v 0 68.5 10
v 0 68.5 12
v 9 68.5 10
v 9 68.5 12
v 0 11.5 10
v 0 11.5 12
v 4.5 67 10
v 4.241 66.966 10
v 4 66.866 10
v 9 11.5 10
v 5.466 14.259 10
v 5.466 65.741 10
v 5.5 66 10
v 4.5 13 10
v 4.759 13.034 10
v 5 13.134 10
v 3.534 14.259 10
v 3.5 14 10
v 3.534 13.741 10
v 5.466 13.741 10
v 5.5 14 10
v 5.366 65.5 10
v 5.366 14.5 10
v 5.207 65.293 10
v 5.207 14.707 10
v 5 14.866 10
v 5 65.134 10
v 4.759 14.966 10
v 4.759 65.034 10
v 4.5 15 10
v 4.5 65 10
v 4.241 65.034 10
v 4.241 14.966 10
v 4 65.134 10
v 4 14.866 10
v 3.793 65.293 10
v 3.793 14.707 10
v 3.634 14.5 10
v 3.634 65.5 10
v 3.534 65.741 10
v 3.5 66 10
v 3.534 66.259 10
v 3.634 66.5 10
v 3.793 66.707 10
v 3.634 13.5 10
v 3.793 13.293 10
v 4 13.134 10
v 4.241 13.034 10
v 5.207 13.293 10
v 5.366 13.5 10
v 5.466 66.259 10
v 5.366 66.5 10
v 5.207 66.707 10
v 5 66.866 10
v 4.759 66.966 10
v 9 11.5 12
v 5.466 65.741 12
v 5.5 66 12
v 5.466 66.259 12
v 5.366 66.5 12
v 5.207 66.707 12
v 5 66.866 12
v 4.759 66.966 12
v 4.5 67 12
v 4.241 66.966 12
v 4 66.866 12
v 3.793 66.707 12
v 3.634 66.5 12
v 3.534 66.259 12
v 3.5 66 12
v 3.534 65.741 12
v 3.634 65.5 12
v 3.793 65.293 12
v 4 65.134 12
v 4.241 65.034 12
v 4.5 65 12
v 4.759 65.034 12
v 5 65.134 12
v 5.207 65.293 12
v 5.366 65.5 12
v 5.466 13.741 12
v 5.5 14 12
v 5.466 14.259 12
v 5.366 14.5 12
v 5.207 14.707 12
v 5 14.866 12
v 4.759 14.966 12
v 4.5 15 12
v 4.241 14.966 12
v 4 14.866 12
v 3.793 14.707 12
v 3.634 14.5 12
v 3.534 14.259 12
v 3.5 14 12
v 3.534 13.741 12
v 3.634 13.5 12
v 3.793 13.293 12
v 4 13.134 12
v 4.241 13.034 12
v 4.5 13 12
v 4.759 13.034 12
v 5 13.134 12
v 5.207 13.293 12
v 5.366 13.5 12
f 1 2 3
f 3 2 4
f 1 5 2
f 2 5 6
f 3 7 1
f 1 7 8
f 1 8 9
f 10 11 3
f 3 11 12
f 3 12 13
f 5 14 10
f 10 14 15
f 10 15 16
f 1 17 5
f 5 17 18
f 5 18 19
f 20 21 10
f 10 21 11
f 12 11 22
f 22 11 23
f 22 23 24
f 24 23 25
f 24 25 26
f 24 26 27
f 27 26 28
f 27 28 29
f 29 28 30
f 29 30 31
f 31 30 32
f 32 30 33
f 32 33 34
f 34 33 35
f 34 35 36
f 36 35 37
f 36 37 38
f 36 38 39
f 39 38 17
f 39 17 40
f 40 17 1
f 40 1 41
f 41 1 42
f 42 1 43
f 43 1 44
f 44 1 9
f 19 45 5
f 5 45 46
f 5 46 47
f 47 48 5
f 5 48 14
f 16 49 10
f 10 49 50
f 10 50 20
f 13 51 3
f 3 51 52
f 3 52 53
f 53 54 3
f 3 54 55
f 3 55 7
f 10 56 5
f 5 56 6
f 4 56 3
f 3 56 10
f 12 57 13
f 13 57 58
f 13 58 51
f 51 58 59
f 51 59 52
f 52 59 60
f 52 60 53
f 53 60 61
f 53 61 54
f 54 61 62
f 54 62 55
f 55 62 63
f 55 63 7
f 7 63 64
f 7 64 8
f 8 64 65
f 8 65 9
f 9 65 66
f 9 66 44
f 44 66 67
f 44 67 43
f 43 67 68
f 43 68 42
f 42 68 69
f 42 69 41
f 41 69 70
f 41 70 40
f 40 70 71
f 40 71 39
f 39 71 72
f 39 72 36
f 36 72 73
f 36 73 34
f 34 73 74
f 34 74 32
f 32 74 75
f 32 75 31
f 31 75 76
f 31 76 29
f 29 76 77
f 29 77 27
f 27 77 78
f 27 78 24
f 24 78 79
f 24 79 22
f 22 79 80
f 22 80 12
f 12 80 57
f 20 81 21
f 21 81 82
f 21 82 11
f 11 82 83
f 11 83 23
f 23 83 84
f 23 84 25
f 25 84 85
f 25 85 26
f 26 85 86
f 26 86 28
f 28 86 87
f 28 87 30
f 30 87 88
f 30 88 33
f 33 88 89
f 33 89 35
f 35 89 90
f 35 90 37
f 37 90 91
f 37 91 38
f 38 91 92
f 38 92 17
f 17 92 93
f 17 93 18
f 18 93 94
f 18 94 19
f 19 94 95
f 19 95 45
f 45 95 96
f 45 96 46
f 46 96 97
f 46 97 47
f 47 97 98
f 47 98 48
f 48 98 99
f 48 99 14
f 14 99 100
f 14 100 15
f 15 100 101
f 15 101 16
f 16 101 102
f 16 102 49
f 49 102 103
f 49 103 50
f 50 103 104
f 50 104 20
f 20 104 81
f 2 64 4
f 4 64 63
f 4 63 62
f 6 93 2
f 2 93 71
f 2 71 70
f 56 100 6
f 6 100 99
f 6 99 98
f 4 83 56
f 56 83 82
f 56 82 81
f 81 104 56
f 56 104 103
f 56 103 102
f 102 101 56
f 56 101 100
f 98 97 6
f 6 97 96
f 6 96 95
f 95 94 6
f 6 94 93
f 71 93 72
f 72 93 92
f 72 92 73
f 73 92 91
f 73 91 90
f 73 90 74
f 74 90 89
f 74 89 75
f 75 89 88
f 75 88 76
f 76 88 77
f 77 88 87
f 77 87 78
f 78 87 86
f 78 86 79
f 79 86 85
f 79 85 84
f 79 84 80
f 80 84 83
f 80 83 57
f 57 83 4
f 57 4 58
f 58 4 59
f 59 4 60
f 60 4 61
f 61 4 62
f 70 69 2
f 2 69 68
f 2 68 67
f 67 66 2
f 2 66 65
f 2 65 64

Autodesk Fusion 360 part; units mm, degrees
sketch "Sketch1" plane through (0, 0, 0) normal (0, 0, 1) x (1, 0, 0)
  line L0 (0, 0) -> (50, 0)
  line L1 (50, 0) -> (50, 80)
  line L2 (50, 80) -> (0, 80)
  line L3 (0, 80) -> (0, 0)
  line L4 (9, 9) -> (41, 9)
  line L5 (41, 9) -> (41, 71)
  line L6 (41, 71) -> (9, 71)
  line L7 (9, 71) -> (9, 9)
  line L8 (2, 62.5) -> (7, 62.5)
  line L9 (7, 62.5) -> (7, 17.5)
  line L10 (7, 17.5) -> (2, 17.5)
  line L11 (2, 17.5) -> (2, 62.5)
  line L12 (0, 40) -> (2, 40)
  line L13 (25, 71) -> (25, 60)
  line L14 (48, 62.5) -> (43, 62.5)
  line L15 (48, 17.5) -> (48, 62.5)
  line L16 (43, 62.5) -> (43, 17.5)
  line L17 (43, 17.5) -> (48, 17.5)
  dimension "d1" = 50
  dimension "d2" = 80
  dimension "d3" = -9
  dimension "d4" = 45
  dimension "d5" = 90
  dimension "d6" = 2
  dimension "d7" = 5
extrude "Extrude1" add sketch "Sketch1" along normal blind 10
sketch "Sketch2" plane through (0, 0, 0) normal (0, 0, -1) x (1, 0, 0)
  line L0 (2, -17.5) -> (7, -17.5)
  line L1 (7, -17.5) -> (7, -62.5)
  line L2 (7, -62.5) -> (2, -62.5)
  line L3 (2, -62.5) -> (2, -17.5)
  line L4 (43, -17.5) -> (48, -17.5)
  line L5 (48, -17.5) -> (48, -62.5)
  line L6 (48, -62.5) -> (43, -62.5)
  line L7 (43, -62.5) -> (43, -17.5)
  line L8 (9, -71) -> (9, -9)
  line L9 (9, -9) -> (41, -9)
  line L10 (41, -9) -> (41, -71)
  line L11 (41, -71) -> (9, -71)
  line L12 (0, 0) -> (0, -80)
  line L13 (0, -80) -> (50, -80)
  line L14 (50, -80) -> (50, 0)
  line L15 (50, 0) -> (0, 0)
  line L16 (0, 0) -> (50, 0)
  line L17 (50, 0) -> (50, -80)
  line L18 (50, -80) -> (0, -80)
  line L19 (0, -80) -> (0, 0)
extrude "Extrude2" add sketch "Sketch2" along normal blind 2 contours L0 L1 L2 L3 | L4 L5 L6 L7 | L12 L13 L14 L15 L16 L17 L18 L19
sketch "Sketch3" plane through (0, 0, 10) normal (0, 0, 1) x (-1, 0, 0)
  line L0 (-7, -17.5) -> (-2, -17.5)
  line L1 (-2, -17.5) -> (-2, -62.5)
  line L2 (-2, -62.5) -> (-7, -62.5)
  line L3 (-7, -62.5) -> (-7, -17.5)
  line L4 (-9, -9) -> (-9, -71)
  line L5 (-9, -71) -> (-41, -71)
  line L6 (-41, -71) -> (-41, -9)
  line L7 (-41, -9) -> (-9, -9)
  line L8 (-48, -17.5) -> (-43, -17.5)
  line L9 (-43, -17.5) -> (-43, -62.5)
  line L10 (-43, -62.5) -> (-48, -62.5)
  line L11 (-48, -62.5) -> (-48, -17.5)
  line L12 (0, -80) -> (0, 0)
  line L13 (0, 0) -> (-50, 0)
  line L14 (-50, 0) -> (-50, -80)
  line L15 (-50, -80) -> (0, -80)
  line L16 (0, -80) -> (-50, -80)
  line L17 (-50, -80) -> (-50, 0)
  line L18 (-50, 0) -> (0, 0)
  line L19 (0, 0) -> (0, -80)
  line L20 (0, -10.5) -> (-50, -10.5)
  line L21 (-50, -10.5) -> (-50, -69.5)
  line L22 (-50, -69.5) -> (0, -69.5)
  line L23 (0, -69.5) -> (0, -10.5)
  line L24 (-4.5, -17.5) -> (-4.5, -10.5)
  line L25 (-4.5, -62.5) -> (-4.5, -69.5)
  line L26 (-45.5, -62.5) -> (-45.5, -69.5)
  line L27 (-45.5, -17.5) -> (-45.5, -10.5)
  circle A0 centre (-4.5, -14) radius 1
  circle A1 centre (-45.5, -14) radius 1
  circle A2 centre (-45.5, -66) radius 1
  circle A3 centre (-4.5, -66) radius 1
  dimension "d12" = 7
  dimension "d13" = 7
  dimension "d14" = 2
  dimension "d15" = 2
  dimension "d16" = 2
  dimension "d17" = 2
extrude "Extrude3" cut sketch "Sketch3" against normal blind 10 contours L24 A0 | L24 A0 | L25 A3 | L25 A3 | L27 A1 | L27 A1 | L26 A2 | L26 A2
extrude "Extrude4" add sketch "Sketch3" along normal blind 2 contours L4 L6 L7 L12 L13 L14 L17 L18 L19 L20 | L4 L5 L6 L12 L14 L15 L16 L17 L19 L22
sketch "Sketch4" plane through (0, 0, 0) normal (0, -1, 0) x (1, 0, 0)
  line L0 (50, -2) -> (50, 12)
  line L1 (50, 12) -> (0, 12)
  line L2 (0, 12) -> (0, -2)
  line L3 (0, -2) -> (50, -2)
  line L4 (25, 12) -> (25, -2)
  circle A0 centre (25, 5) radius 5
  dimension "d22" = 10
extrude "Extrude5" cut sketch "Sketch4" against normal blind 100 contours L4 A0 | L4 A0
sketch "Sketch5" plane through (0, 0, -2) normal (0, 0, -1) x (1, 0, 0)
  line L0 (41, -9) -> (41, -71)
  line L1 (41, -71) -> (9, -71)
  line L2 (9, -71) -> (9, -9)
  line L3 (9, -9) -> (41, -9)
  line L4 (0, -80) -> (50, -80)
  line L5 (50, -80) -> (50, 0)
  line L6 (50, 0) -> (0, 0)
  line L7 (0, 0) -> (0, -80)
  line L8 (10, -80) -> (40, -80)
  line L9 (50, -70) -> (50, -10)
  line L10 (40, 0) -> (10, 0)
  line L11 (0, -10) -> (0, -70)
  line L12 (39.5, -9) -> (10.5, -9)
  line L13 (9, -10.5) -> (9, -69.5)
  line L14 (10.5, -71) -> (39.5, -71)
  line L15 (41, -69.5) -> (41, -10.5)
  arc A0 (10.5, -9) -> (9, -10.5) centre (10.5, -10.5) ccw
  arc A1 (41, -10.5) -> (39.5, -9) centre (39.5, -10.5) ccw
  arc A2 (9, -69.5) -> (10.5, -71) centre (10.5, -69.5) ccw
  arc A3 (39.5, -71) -> (41, -69.5) centre (39.5, -69.5) ccw
  arc A4 (10, 0) -> (0, -10) centre (10, -10) ccw
  arc A5 (50, -10) -> (40, 0) centre (40, -10) ccw
  arc A6 (0, -70) -> (10, -80) centre (10, -70) ccw
  arc A7 (40, -80) -> (50, -70) centre (40, -70) ccw
  point P0 (20, -71)
  point P1 (9, -10.5)
  point P2 (41, -10.5)
  point P3 (41, -69.5)
  point P4 (9, -69.5)
  dimension "d29" = 10
  dimension "d30" = 10
  dimension "d31" = 10
  dimension "d32" = 10
extrude "Extrude6" cut sketch "Sketch5" against normal blind 100 contours L4 L7 A6 | L4 L5 A7 | L6 L7 A4 | L5 L6 A5
extrude "Extrude7" add sketch "Sketch5" against normal up to surface (14 mm away) contours L0 L3 A1 | L0 L1 A3 | L2 L3 A0 | L1 L2 A2
sketch "Sketch6" plane through (0, 0, 10) normal (0, 0, 1) x (-1, 0, 0)
  line L0 (-9, -69.5) -> (0, -69.5)
  line L1 (0, -69.5) -> (0, -10.5)
  line L2 (0, -10.5) -> (-9, -10.5)
  line L3 (-9, -10.5) -> (-9, -69.5)
  line L4 (-7, -17.5) -> (-2, -17.5)
  line L5 (-2, -17.5) -> (-2, -62.5)
  line L6 (-2, -62.5) -> (-7, -62.5)
  line L7 (-7, -62.5) -> (-7, -17.5)
  circle A0 centre (-4.5, -66) radius 1
  circle A1 centre (-4.5, -14) radius 1
  line L8 (0, -69.5) -> (-9, -69.5)
  line L9 (-9, -69.5) -> (-9, -10.5)
  line L10 (-9, -10.5) -> (0, -10.5)
  line L11 (0, -10.5) -> (0, -69.5)
  line L12 (12.8472, -89.0472) -> (-65.8375, -89.0472)
  line L13 (-65.8375, -89.0472) -> (-65.8375, 10.3586)
  line L14 (-65.8375, 10.3586) -> (12.8472, 10.3586)
  line L15 (12.8472, 10.3586) -> (12.8472, -89.0472)
extrude "Extrude8" cut sketch "Sketch6" against normal blind 100 from surface at 2 contours L12 L13 L14 L15
sketch "Sketch7" plane through (0, 0, 10) normal (0, 0, 1) x (-1, 0, 0)
  line L0 (-9, -69.5) -> (0, -69.5)
  line L1 (0, -69.5) -> (0, -10.5)
  line L2 (0, -10.5) -> (-9, -10.5)
  line L3 (-9, -10.5) -> (-9, -69.5)
  line L4 (-7, -17.5) -> (-2, -17.5)
  line L5 (-2, -17.5) -> (-2, -62.5)
  line L6 (-2, -62.5) -> (-7, -62.5)
  line L7 (-7, -62.5) -> (-7, -17.5)
  circle A0 centre (-4.5, -66) radius 1
  circle A1 centre (-4.5, -14) radius 1
  line L8 (0, -69.5) -> (-9, -69.5)
  line L9 (-9, -69.5) -> (-9, -10.5)
  line L10 (-9, -10.5) -> (0, -10.5)
  line L11 (0, -10.5) -> (0, -69.5)
extrude "Extrude9" add sketch "Sketch7" along normal blind 2 contours L0 L1 L2 L3 L8 L9 L10 L11 | L4 L5 L6 L7
sketch "Sketch8" plane through (0, 0, 0) normal (-1, 0, 0) x (0, -1, 0)
  line L0 (-10.5, -2) -> (-10.5, 12)
  line L1 (-10.5, 12) -> (-69.5, 12)
  line L2 (-69.5, 12) -> (-69.5, -2)
  line L3 (-69.5, -2) -> (-10.5, -2)
  line L4 (-69.5, -2) -> (-10.5, -2)
  line L5 (-10.5, -2) -> (-10.5, 10)
  line L6 (-10.5, 10) -> (-69.5, 10)
  line L7 (-69.5, 10) -> (-69.5, -2)
  dimension "d42" = 2
extrude "Extrude10" cut sketch "Sketch8" against normal blind 9 contours L0 L2 L3 L4 L5 L6 L7
extrude "Extrude11" cut 1 faces at (3, 10.5, 11.3333) along direction (0, 1, 0) blind 1
extrude "Extrude12" cut 1 faces at (6, 69.5, 11.3333) along direction (0, -1, 0) blind 1
